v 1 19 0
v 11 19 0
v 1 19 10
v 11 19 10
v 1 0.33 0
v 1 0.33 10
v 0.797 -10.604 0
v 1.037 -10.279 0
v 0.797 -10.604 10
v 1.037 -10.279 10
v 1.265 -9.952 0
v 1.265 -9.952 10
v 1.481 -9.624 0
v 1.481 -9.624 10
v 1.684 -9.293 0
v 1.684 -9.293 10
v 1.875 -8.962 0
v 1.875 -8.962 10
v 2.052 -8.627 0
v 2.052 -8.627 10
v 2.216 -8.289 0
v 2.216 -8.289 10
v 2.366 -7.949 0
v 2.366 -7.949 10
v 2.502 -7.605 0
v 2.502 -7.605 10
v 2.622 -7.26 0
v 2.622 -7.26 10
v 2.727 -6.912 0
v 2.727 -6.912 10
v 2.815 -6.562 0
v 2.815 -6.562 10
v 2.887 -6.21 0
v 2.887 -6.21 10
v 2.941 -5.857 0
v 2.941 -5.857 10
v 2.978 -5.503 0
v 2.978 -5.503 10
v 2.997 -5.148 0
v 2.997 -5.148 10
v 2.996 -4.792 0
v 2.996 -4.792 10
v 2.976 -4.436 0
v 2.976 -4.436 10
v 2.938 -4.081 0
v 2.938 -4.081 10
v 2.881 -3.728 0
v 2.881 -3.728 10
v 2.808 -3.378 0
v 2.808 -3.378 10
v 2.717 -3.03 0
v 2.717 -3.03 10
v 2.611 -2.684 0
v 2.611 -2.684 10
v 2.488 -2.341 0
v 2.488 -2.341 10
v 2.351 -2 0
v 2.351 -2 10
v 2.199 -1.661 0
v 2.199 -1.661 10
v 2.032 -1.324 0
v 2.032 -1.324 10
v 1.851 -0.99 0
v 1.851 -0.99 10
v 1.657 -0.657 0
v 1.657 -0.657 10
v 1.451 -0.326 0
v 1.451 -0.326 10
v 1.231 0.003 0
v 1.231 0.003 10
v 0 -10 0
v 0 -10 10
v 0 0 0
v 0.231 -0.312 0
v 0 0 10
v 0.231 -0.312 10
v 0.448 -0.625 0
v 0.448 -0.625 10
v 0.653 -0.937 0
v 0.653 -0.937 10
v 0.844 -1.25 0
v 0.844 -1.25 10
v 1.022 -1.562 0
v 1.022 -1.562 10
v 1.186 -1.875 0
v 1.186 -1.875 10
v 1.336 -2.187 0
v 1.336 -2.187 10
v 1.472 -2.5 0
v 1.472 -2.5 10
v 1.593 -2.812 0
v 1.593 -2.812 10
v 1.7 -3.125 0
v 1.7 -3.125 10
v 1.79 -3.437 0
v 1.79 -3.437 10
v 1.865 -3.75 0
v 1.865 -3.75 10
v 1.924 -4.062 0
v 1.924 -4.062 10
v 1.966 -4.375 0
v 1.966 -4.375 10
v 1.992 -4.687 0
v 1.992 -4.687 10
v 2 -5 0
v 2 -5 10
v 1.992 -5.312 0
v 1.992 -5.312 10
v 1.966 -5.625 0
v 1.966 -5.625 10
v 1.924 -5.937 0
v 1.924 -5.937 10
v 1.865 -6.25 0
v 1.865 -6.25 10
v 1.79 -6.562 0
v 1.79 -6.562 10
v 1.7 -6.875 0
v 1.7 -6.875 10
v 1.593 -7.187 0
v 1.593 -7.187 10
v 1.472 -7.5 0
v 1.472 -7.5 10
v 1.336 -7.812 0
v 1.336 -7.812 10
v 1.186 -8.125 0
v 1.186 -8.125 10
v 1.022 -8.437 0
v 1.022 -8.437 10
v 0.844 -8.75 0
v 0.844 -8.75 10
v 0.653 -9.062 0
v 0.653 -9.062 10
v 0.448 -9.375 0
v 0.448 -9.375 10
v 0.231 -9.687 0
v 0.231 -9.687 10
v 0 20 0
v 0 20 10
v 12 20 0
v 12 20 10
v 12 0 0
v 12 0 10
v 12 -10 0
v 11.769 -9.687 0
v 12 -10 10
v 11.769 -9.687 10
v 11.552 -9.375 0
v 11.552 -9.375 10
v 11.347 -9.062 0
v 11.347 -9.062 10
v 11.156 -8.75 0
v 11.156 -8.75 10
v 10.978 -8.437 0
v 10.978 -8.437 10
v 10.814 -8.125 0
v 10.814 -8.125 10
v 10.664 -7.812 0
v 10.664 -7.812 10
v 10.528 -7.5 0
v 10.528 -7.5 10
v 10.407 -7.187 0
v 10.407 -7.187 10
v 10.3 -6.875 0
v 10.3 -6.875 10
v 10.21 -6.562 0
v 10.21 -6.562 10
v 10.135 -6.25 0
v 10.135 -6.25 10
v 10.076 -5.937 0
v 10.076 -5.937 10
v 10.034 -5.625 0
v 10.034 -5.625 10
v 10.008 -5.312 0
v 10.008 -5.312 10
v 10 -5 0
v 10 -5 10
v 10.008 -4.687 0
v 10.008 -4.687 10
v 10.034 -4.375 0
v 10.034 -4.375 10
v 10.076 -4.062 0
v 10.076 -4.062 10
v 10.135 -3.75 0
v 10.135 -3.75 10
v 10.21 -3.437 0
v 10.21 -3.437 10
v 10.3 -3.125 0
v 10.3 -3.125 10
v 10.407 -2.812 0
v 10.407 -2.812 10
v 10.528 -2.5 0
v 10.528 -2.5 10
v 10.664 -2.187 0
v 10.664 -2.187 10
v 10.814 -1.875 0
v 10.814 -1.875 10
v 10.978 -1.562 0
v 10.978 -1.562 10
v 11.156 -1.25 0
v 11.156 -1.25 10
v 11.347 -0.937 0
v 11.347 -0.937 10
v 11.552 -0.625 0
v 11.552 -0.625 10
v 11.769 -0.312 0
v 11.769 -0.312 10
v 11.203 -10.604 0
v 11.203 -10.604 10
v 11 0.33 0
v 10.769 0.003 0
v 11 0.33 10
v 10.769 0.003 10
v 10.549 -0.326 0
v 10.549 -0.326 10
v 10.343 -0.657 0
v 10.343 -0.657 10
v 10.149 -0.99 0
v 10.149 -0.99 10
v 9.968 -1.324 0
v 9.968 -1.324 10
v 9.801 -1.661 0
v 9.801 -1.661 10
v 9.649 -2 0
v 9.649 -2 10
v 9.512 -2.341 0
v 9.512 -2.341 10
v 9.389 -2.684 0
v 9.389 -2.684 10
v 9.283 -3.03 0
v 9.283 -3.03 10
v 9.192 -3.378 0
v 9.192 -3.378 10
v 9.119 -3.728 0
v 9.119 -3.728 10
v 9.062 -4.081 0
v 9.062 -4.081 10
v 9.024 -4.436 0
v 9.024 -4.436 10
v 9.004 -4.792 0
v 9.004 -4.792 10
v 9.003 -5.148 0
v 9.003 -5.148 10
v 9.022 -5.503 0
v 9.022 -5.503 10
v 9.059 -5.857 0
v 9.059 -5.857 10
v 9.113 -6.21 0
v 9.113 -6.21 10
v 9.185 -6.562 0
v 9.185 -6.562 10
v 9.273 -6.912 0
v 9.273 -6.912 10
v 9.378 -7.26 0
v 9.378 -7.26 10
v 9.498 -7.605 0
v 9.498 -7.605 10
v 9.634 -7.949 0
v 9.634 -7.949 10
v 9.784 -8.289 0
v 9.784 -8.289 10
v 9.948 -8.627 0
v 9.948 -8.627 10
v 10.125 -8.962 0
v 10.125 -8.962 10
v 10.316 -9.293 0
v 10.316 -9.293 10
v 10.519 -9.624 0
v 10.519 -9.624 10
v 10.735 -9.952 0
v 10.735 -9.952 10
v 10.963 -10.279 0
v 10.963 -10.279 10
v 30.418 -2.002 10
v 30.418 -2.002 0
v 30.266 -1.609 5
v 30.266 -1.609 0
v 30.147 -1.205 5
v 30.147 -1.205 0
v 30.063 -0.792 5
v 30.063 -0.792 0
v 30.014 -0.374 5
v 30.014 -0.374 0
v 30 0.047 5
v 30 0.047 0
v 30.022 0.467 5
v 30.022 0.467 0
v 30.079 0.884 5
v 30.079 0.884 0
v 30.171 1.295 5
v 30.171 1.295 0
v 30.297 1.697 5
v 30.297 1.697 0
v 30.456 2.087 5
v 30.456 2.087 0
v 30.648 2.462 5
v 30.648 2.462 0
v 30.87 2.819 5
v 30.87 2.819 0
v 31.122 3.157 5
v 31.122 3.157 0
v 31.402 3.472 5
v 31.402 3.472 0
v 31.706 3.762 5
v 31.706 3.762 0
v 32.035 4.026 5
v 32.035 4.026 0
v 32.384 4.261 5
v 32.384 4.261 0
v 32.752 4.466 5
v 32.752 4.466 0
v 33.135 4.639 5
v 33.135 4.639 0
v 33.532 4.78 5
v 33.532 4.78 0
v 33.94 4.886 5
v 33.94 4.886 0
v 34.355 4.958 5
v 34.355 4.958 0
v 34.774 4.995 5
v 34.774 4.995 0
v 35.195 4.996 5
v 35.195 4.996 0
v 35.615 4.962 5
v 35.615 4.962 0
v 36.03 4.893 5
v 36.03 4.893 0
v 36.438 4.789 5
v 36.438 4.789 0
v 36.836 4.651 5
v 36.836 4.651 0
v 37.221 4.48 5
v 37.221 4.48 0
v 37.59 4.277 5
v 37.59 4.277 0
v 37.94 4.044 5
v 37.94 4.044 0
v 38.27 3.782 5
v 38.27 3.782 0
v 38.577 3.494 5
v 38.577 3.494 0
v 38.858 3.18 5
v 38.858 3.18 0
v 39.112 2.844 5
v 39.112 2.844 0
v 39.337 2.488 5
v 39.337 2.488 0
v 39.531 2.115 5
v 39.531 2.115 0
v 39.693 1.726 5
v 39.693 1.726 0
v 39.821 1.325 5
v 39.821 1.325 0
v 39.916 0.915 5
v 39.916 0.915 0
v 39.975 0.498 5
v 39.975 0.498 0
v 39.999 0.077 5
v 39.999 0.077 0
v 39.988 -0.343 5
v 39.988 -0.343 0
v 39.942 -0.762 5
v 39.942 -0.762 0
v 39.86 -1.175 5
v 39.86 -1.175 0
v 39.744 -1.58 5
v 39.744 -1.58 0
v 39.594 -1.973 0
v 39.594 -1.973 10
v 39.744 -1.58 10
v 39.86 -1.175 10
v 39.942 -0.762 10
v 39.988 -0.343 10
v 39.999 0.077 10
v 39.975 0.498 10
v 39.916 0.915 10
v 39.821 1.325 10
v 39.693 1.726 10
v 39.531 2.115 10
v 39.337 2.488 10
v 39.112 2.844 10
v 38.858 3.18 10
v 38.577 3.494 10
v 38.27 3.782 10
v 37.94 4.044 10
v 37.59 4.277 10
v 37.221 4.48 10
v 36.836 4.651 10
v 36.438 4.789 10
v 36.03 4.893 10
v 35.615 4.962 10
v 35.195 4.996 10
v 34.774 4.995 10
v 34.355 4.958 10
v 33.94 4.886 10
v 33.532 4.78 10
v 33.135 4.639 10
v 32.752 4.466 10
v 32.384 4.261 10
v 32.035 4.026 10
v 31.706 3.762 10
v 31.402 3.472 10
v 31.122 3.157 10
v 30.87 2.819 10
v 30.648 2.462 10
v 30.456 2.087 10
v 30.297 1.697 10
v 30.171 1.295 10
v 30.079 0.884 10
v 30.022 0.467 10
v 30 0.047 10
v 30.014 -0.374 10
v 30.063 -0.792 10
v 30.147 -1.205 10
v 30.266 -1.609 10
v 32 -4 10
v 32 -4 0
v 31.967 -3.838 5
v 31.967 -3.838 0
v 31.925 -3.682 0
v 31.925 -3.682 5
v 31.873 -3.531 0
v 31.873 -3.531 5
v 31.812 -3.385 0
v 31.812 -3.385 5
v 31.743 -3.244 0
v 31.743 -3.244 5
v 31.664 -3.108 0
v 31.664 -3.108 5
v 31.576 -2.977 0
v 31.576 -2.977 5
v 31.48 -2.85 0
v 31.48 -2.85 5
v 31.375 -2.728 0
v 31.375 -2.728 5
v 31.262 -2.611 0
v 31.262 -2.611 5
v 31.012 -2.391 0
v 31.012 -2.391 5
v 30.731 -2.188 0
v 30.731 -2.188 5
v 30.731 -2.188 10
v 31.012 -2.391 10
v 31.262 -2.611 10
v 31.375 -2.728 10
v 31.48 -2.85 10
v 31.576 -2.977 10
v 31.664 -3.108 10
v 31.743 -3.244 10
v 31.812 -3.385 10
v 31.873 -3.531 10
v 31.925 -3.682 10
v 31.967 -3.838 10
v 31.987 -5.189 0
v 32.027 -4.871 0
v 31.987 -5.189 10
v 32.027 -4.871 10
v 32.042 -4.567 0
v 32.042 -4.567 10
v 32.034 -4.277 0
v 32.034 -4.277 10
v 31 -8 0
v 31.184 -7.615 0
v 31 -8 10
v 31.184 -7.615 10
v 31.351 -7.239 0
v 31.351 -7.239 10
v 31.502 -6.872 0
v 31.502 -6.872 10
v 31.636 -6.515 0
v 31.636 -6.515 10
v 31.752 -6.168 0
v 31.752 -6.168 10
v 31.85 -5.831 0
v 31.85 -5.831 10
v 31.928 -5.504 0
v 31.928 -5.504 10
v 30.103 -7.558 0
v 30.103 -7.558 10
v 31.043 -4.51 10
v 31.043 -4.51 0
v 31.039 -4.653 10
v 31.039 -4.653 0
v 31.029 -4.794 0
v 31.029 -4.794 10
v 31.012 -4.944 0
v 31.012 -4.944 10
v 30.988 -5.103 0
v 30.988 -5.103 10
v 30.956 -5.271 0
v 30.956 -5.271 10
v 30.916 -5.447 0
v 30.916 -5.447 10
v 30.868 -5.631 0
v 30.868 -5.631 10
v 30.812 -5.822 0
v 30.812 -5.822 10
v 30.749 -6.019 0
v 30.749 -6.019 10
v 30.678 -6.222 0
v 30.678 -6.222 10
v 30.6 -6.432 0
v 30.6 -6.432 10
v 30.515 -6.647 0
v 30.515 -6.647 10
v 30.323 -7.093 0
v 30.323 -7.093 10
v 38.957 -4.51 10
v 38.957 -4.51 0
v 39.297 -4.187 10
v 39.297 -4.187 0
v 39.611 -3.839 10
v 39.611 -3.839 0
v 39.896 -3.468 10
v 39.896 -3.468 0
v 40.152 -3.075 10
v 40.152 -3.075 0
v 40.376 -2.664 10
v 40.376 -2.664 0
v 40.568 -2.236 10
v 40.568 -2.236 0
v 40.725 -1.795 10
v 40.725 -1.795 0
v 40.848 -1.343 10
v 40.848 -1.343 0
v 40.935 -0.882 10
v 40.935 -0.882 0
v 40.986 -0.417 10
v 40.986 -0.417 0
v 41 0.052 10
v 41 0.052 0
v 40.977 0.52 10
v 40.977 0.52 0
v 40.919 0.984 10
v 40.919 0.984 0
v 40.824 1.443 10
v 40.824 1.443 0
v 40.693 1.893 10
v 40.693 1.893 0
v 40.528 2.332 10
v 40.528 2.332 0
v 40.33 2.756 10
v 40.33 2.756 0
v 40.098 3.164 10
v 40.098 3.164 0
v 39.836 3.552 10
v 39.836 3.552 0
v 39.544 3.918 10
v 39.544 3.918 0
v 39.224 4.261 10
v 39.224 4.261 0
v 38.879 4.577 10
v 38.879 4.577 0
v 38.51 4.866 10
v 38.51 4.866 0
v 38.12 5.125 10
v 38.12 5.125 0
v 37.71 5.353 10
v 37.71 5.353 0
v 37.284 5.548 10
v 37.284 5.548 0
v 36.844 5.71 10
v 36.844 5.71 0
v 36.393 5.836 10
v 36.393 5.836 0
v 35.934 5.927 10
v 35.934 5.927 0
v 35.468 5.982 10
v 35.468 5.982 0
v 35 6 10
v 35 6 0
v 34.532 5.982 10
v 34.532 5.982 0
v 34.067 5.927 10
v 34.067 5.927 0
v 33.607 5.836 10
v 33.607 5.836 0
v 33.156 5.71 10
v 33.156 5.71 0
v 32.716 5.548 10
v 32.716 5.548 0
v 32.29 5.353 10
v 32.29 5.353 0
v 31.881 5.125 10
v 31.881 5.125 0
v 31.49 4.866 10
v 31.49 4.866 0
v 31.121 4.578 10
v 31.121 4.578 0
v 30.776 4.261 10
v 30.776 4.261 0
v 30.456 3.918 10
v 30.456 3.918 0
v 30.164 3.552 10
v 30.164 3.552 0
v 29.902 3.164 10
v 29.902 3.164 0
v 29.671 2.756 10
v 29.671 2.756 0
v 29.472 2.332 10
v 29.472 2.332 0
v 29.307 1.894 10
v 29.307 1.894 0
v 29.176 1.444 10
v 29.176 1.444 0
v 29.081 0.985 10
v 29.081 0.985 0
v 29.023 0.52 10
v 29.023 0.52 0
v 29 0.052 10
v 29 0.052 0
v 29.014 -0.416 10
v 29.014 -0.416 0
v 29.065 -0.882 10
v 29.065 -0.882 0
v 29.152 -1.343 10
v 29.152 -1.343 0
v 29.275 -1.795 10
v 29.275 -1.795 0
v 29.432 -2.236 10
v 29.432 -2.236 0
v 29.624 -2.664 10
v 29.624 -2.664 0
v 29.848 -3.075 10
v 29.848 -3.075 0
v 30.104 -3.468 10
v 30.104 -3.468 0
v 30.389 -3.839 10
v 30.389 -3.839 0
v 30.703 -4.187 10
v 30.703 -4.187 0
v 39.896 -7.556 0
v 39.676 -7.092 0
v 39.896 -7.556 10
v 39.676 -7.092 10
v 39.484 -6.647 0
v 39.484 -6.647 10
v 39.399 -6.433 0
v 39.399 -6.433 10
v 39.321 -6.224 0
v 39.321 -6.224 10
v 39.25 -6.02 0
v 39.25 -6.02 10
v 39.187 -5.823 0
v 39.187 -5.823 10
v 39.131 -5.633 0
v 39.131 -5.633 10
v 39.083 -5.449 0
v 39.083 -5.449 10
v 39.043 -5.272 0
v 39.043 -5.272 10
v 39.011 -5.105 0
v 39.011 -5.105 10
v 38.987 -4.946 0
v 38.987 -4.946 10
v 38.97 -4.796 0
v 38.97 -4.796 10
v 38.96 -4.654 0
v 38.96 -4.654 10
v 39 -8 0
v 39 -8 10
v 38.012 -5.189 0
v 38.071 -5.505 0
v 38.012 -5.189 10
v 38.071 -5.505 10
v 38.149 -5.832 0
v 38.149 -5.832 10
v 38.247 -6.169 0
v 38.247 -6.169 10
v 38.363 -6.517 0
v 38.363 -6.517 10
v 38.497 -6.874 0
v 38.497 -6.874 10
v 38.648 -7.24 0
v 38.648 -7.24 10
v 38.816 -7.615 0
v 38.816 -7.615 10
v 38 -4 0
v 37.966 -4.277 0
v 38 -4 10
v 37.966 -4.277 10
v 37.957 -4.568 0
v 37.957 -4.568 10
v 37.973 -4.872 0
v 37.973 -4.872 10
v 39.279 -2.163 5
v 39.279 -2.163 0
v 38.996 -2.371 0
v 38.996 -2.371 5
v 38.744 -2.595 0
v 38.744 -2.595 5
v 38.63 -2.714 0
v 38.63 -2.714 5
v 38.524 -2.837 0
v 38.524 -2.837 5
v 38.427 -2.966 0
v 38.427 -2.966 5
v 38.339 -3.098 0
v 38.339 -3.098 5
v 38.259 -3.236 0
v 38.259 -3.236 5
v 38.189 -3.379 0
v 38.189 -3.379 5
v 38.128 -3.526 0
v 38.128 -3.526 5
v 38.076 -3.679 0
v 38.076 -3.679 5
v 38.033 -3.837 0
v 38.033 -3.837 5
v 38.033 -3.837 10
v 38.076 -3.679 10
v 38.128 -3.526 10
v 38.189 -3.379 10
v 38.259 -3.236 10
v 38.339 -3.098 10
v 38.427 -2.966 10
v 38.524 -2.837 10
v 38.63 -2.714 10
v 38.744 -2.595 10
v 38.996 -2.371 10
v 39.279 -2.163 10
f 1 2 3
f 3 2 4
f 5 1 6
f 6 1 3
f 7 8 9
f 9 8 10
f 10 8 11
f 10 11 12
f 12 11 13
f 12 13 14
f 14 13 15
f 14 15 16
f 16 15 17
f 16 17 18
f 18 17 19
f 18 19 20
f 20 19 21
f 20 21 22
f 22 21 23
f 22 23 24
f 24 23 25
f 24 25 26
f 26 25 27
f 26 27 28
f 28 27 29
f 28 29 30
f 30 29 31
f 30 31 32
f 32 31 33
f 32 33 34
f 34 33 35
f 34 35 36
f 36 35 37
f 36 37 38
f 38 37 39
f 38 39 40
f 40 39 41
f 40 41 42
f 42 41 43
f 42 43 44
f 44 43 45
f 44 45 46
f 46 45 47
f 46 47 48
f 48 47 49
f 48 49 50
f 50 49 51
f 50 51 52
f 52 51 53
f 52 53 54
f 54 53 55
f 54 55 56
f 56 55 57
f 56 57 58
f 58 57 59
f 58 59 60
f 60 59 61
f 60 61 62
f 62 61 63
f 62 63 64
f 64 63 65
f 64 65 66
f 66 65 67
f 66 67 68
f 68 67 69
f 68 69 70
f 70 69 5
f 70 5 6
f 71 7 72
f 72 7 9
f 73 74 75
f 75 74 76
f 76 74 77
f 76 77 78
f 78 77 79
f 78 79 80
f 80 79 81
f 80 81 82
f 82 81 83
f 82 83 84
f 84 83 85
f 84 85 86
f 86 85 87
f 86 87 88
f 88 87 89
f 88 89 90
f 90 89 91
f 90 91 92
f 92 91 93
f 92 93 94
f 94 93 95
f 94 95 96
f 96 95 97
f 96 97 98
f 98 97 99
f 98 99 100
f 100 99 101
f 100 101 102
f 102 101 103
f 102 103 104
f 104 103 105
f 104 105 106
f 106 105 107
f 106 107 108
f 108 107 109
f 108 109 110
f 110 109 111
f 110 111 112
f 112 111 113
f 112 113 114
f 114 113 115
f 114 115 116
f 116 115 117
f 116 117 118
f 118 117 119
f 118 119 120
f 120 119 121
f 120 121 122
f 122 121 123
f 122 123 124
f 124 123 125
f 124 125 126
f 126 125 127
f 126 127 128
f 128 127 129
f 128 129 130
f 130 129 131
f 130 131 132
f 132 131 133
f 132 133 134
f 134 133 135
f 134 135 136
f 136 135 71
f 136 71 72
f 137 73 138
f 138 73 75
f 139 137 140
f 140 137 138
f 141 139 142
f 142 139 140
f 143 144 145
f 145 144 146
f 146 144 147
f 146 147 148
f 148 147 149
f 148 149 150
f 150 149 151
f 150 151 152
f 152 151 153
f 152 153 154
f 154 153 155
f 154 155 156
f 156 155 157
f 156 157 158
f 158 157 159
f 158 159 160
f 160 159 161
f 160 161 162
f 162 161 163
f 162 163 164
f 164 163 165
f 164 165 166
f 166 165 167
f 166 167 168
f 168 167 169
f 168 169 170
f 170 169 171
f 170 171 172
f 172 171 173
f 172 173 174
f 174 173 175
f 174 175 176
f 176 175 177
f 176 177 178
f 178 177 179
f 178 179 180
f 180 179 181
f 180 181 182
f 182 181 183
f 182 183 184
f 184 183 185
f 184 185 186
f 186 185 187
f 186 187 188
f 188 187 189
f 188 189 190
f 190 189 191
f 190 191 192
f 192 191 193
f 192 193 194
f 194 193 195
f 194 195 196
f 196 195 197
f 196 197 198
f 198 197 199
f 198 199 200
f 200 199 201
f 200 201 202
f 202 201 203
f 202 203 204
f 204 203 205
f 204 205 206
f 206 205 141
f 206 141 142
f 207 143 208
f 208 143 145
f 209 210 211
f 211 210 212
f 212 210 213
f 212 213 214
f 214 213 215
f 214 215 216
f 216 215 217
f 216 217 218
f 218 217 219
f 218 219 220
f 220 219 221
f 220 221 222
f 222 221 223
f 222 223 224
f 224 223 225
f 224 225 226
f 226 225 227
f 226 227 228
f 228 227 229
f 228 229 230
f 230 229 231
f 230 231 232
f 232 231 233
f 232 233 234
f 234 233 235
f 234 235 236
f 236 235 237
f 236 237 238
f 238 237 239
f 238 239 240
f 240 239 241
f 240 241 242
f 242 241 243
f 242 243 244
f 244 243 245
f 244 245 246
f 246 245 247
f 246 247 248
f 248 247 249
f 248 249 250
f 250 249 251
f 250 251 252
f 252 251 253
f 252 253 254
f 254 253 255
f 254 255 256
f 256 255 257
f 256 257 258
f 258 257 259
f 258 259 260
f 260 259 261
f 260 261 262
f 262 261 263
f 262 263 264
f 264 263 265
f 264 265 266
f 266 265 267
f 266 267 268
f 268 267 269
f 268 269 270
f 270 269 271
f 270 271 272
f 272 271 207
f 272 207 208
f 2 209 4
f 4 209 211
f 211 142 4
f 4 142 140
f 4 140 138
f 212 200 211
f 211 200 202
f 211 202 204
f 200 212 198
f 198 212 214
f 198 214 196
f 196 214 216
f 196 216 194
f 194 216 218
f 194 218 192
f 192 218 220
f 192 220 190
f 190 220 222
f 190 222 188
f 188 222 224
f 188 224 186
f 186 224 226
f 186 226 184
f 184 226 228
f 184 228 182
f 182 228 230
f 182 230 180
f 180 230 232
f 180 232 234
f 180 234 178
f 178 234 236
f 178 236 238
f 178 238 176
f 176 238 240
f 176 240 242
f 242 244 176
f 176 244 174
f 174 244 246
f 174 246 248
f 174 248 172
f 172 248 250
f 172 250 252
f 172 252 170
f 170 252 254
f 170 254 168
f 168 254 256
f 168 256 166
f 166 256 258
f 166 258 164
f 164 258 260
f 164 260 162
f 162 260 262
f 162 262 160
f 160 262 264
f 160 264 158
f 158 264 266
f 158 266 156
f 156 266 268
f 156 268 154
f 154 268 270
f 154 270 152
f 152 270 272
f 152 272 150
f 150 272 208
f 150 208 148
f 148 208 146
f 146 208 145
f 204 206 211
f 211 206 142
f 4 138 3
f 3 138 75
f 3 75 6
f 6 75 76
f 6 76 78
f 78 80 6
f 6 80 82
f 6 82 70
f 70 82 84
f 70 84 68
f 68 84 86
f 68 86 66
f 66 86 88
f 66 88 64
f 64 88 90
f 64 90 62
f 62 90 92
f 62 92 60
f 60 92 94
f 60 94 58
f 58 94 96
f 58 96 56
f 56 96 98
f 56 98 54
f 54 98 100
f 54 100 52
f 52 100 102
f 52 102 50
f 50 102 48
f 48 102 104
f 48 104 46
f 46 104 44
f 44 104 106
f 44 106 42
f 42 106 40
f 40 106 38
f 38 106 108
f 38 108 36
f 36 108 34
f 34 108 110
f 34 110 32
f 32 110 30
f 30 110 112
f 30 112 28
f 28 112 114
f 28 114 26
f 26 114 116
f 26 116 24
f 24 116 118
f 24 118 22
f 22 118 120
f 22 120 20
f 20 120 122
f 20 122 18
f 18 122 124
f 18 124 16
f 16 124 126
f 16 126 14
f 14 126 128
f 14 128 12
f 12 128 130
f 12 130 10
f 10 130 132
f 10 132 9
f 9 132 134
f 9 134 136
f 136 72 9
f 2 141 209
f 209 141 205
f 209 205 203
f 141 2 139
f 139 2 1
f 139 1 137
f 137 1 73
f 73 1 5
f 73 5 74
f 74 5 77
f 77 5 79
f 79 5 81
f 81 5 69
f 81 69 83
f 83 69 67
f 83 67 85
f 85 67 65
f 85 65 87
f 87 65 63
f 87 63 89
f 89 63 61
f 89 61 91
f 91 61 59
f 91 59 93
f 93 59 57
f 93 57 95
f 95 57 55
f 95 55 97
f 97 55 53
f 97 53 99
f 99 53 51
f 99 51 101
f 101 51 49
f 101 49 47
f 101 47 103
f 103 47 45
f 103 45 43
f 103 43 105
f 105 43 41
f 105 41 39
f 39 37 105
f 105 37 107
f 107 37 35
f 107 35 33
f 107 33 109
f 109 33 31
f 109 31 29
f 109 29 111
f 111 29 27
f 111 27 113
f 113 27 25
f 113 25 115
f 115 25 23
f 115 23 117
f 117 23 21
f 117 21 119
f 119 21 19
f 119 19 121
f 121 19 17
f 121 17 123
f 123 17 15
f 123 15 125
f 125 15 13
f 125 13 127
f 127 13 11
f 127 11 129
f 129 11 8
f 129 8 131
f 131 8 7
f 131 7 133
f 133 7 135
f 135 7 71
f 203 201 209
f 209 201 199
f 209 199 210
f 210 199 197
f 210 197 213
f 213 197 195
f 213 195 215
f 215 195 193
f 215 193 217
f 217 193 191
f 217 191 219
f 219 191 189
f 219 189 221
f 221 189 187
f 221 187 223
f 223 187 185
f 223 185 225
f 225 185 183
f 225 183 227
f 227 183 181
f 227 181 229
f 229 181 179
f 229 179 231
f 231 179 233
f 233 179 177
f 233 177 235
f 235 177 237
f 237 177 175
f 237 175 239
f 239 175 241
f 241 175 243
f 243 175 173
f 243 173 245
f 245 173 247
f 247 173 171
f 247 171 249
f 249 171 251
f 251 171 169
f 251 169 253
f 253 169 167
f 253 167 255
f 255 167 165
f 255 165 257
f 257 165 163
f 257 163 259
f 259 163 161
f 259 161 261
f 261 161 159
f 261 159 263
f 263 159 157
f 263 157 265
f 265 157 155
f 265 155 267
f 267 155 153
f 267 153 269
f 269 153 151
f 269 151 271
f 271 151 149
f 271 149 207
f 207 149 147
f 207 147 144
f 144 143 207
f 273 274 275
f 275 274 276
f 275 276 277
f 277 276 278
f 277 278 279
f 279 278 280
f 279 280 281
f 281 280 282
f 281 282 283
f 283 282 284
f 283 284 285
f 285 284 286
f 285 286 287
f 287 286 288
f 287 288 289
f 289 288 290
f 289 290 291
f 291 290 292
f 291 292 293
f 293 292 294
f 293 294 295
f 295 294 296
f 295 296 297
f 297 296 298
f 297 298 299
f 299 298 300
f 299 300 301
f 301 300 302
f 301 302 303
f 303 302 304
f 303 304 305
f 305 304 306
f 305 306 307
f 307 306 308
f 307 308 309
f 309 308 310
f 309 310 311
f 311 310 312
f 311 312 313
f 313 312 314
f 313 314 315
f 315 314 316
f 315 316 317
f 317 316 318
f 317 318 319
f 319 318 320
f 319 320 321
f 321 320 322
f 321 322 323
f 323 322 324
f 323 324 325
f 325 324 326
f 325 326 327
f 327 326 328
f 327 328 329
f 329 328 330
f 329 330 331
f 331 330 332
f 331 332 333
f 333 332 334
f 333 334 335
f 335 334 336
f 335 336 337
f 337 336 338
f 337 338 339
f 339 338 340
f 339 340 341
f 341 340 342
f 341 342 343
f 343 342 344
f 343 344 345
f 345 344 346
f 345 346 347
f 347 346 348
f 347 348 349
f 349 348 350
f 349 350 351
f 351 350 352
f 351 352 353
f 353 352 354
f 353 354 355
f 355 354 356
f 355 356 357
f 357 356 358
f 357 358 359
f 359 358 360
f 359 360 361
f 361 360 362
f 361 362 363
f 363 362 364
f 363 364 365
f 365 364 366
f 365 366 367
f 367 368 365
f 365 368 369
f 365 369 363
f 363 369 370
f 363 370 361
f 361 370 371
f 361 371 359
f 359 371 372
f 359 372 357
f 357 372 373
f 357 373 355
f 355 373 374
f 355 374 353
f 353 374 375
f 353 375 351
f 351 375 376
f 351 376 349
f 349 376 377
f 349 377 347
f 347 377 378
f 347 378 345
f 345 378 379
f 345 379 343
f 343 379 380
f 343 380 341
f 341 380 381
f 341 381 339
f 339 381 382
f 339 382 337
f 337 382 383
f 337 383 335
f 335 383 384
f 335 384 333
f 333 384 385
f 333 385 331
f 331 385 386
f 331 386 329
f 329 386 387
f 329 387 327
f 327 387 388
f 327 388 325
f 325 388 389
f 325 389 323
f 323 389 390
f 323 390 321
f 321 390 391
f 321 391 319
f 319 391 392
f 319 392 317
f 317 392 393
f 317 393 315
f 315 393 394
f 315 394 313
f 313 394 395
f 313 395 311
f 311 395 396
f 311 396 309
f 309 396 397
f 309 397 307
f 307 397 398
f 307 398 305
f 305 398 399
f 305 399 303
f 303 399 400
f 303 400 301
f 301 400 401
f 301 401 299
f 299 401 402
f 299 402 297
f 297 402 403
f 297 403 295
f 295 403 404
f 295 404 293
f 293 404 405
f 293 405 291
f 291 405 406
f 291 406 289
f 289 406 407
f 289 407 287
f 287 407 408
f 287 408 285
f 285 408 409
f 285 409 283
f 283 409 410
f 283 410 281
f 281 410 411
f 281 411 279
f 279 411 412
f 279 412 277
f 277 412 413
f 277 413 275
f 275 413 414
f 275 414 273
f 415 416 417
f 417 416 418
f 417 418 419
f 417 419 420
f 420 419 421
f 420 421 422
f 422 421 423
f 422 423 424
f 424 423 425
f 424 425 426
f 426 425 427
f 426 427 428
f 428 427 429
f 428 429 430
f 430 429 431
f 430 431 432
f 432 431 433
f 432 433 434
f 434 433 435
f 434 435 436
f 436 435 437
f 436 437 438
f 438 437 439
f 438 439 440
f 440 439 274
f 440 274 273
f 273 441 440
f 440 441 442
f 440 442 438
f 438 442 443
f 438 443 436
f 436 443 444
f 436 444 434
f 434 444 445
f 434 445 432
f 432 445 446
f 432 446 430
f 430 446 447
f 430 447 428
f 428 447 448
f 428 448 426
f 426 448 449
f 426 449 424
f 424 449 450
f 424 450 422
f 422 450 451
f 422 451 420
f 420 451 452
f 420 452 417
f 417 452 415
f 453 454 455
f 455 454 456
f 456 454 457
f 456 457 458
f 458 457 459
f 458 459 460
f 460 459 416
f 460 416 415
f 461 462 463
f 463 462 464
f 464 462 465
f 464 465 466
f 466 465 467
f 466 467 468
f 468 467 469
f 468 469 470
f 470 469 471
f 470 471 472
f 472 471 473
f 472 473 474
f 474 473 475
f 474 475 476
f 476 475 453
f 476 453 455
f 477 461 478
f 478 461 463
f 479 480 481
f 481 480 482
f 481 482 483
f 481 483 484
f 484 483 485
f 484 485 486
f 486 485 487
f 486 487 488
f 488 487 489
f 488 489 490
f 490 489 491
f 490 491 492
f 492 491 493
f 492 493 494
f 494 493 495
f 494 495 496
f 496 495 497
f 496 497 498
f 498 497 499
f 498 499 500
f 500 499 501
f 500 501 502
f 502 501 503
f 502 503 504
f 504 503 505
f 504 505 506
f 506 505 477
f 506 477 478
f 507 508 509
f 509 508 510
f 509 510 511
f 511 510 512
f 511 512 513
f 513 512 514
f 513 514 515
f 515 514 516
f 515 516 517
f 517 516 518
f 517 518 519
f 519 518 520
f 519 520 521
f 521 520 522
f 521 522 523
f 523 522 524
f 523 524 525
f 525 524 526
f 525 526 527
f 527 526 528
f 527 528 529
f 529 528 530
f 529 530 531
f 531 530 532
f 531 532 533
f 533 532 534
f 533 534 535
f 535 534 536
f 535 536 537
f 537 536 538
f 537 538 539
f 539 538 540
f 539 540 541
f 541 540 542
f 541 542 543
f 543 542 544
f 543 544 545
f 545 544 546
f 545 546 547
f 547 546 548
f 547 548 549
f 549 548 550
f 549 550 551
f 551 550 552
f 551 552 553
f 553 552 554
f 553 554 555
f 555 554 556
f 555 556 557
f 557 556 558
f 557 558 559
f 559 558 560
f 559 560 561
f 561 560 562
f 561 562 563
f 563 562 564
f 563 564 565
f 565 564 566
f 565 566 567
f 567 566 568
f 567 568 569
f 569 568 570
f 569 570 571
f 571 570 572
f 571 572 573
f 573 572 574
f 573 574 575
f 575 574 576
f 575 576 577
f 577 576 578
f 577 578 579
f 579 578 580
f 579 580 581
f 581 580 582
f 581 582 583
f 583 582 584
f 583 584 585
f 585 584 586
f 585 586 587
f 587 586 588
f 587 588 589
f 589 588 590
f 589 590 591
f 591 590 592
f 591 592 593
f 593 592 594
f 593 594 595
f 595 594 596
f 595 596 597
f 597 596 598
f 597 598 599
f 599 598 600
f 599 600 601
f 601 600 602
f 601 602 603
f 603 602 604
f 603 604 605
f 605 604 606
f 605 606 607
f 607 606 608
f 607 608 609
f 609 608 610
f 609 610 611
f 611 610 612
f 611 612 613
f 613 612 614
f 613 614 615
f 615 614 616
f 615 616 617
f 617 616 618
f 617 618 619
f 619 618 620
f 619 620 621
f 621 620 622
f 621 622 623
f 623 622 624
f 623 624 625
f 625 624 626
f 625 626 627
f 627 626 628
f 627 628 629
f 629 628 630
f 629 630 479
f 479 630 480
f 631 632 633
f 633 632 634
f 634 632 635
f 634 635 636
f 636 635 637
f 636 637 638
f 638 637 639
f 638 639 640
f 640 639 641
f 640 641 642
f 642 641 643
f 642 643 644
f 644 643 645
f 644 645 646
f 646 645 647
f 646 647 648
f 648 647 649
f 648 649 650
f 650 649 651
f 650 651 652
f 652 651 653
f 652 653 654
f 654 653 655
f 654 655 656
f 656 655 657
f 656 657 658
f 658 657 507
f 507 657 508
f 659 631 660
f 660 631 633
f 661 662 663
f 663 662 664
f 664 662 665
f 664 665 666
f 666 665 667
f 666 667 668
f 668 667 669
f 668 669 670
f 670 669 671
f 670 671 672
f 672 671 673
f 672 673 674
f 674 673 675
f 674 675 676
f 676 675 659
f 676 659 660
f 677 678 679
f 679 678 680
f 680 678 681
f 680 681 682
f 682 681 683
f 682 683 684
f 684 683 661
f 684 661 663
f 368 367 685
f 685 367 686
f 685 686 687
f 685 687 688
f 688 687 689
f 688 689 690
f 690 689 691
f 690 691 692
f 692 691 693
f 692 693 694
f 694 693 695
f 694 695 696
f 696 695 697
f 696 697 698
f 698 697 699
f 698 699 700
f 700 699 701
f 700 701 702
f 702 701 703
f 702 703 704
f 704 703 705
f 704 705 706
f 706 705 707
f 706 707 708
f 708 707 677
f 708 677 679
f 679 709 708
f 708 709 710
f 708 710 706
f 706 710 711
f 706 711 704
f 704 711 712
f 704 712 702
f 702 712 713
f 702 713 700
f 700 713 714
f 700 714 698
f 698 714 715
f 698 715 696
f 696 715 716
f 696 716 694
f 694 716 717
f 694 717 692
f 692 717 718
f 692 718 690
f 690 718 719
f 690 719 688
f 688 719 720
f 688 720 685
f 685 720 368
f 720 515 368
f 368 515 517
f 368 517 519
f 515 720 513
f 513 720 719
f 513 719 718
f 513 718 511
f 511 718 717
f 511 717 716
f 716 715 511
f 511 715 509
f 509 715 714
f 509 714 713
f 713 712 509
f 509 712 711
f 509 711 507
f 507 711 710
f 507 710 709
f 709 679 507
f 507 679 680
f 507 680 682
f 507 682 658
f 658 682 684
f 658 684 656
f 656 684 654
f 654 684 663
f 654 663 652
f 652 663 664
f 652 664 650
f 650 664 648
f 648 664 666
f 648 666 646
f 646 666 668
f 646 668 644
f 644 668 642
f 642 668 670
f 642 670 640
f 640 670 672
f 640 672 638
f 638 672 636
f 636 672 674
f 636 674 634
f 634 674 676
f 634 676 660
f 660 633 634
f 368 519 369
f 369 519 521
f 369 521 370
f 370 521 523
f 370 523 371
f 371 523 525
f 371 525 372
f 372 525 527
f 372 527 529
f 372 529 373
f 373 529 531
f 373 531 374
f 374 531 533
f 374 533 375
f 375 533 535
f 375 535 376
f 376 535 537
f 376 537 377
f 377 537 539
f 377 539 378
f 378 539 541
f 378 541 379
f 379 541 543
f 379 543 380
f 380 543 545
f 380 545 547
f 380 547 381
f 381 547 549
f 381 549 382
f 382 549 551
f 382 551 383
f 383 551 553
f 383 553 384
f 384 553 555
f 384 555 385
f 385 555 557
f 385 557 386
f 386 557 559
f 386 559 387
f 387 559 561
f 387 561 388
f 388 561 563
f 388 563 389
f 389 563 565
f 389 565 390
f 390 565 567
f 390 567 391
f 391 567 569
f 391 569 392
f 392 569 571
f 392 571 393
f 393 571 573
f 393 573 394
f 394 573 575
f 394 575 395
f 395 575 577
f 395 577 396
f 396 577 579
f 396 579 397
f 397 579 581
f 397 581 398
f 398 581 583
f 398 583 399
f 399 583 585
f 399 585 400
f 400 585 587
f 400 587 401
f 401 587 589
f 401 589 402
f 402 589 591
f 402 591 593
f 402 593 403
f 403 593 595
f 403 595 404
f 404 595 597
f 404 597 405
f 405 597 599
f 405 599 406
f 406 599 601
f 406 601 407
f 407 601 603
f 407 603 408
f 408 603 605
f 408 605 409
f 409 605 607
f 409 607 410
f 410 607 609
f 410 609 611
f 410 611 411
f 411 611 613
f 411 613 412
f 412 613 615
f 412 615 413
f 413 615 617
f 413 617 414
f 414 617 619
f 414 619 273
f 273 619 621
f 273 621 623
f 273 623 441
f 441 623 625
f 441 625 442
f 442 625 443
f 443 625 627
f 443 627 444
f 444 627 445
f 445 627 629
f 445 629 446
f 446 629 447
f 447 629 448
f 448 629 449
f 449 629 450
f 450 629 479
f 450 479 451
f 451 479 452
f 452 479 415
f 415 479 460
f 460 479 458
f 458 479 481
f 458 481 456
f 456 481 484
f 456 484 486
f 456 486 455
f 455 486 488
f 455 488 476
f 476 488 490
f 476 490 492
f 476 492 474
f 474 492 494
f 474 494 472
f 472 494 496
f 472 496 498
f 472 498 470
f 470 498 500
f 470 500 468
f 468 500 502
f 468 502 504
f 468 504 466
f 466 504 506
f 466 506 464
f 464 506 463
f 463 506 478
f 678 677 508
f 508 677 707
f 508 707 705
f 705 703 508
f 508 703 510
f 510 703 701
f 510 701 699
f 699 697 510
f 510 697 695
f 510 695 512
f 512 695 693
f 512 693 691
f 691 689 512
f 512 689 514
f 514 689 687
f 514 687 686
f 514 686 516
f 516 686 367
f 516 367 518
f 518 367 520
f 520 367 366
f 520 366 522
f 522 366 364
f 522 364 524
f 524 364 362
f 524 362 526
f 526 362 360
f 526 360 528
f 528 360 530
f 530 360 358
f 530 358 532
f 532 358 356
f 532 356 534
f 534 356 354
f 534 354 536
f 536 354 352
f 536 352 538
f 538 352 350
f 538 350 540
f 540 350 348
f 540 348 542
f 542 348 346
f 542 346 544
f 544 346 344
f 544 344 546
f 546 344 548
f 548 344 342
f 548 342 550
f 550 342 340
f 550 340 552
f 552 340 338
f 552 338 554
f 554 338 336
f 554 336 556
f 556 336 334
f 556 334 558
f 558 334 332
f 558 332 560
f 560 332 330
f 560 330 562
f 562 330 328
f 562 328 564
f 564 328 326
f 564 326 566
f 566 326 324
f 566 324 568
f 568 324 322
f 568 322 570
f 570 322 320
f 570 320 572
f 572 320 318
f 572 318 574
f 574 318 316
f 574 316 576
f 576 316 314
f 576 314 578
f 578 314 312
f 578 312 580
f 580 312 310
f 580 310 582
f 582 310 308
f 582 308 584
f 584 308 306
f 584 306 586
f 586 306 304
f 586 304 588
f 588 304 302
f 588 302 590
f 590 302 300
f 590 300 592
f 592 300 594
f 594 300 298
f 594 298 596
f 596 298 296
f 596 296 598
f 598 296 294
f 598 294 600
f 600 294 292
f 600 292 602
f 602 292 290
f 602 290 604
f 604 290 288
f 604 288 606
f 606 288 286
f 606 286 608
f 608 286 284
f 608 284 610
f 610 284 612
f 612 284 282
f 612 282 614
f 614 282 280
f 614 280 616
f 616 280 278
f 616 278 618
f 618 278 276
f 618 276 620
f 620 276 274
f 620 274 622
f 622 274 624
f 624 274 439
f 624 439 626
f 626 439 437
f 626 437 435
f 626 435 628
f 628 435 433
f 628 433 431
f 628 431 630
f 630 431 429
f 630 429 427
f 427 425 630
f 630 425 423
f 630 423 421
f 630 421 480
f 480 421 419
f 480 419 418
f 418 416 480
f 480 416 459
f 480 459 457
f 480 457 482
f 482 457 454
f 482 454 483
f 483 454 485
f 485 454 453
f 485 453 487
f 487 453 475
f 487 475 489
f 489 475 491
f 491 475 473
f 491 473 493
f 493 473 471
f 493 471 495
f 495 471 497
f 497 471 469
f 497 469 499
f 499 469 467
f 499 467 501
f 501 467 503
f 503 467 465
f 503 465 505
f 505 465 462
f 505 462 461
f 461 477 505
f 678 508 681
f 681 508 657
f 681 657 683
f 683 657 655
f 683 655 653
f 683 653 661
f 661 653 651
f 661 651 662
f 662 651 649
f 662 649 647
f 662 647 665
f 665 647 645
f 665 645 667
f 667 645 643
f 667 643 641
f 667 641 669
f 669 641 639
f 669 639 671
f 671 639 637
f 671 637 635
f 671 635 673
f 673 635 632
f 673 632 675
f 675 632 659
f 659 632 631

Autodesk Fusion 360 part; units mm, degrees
sketch "スケッチ1" plane through (0, 0, 0) normal (0, 0, 1) x (1, 0, 0)
  line L0 (0, 0) -> (12, 0)
  line L1 (12, 0) -> (12, 20)
  line L2 (12, 20) -> (0, 20)
  line L3 (0, 20) -> (0, 0)
  line L4 (1, 19) -> (1, 1)
  line L5 (1, 1) -> (11, 1)
  line L6 (11, 1) -> (11, 19)
  line L7 (11, 19) -> (1, 19)
  spline S0 degree 5 poles (0, 0) (0.1517, -0.2) (0.4418, -0.6) (0.8373, -1.2) (1.2838, -2) (1.6981, -3) (1.9558, -4) (2.044, -5) (1.9558, -6) (1.6981, -7) (1.2838, -8) (0.8373, -8.8) (0.4418, -9.4) (0.1517, -9.8) (0, -10) knots 0 0 0 0 0 0 0.1 0.2 0.3 0.4 0.5 0.6 0.7 0.8 0.9 1 1 1 1 1 1
  spline S1 degree 5 poles (12, 0) (11.8483, -0.2) (11.5582, -0.6) (11.1627, -1.2) (10.7162, -2) (10.3019, -3) (10.0442, -4) (9.956, -5) (10.0442, -6) (10.3019, -7) (10.7162, -8) (11.1627, -8.8) (11.5582, -9.4) (11.8483, -9.8) (12, -10) knots 0 0 0 0 0 0 0.1 0.2 0.3 0.4 0.5 0.6 0.7 0.8 0.9 1 1 1 1 1 1
  spline S2 degree 3 poles (0.7967, 0.6043) (2.0079, -0.9924) (2.8183, -2.6497) (2.9734, -4.4012) (3.1097, -5.9396) (2.6886, -7.4735) (1.902, -8.9122) (1.5893, -9.4841) (1.2196, -10.0468) (0.7967, -10.6043) knots 0 0 0 0 0.448948 0.448948 0.448948 0.843241 0.843241 0.843241 1 1 1 1
  spline S3 degree 3 poles (11.2033, 0.6043) (9.9921, -0.9924) (9.1817, -2.6497) (9.0266, -4.4012) (8.8903, -5.9396) (9.3114, -7.4735) (10.098, -8.9122) (10.4107, -9.4841) (10.7804, -10.0468) (11.2033, -10.6043) knots 0 0 0 0 0.448948 0.448948 0.448948 0.843241 0.843241 0.843241 1 1 1 1
  line L8 (1, 1) -> (1, 0)
  line L9 (11, 1) -> (11, 0)
  line L10 (0, -10) -> (0.7967, -10.6043)
  line L11 (11.2033, -10.6043) -> (12, -10)
  point P0 (2, -5)
  point P1 (10, -5)
  dimension "d1" = 12
  dimension "d2" = 20
  dimension "d3" = -1
  dimension "d4" = -1
  dimension "d5" = 1
extrude "押し出し1" add sketch "スケッチ1" along normal blind 10 contours L0 L1 L2 L3 L4 L6 L7 L8 L9 | L0 S0 S2 L10 | L0 S2 L8 | L0 S3 L9 | L0 S1 S3 L11 makes body 1
sketch "スケッチ2" plane through (0, 0, 0) normal (0, 0, 1) x (1, 0, 0)
  circle A0 centre (35, 0) radius 6
  circle A1 centre (35, 0) radius 5
  spline S0 degree 5 poles (30.4181, -2.0016) (30.5333, -2.064) (30.7542, -2.194) (31.0572, -2.4048) (31.4038, -2.7178) (31.735, -3.1657) (31.9565, -3.6747) (32.0617, -4.2484) (32.0508, -4.8867) (31.932, -5.5849) (31.7152, -6.3378) (31.4705, -6.9797) (31.2495, -7.4819) (31.0859, -7.8258) (31, -8) knots 0 0 0 0 0 0 0.1 0.2 0.3 0.4 0.5 0.6 0.7 0.8 0.9 1 1 1 1 1 1
  spline S1 degree 5 poles (39.5941, -1.9734) (39.4783, -2.0371) (39.2562, -2.1697) (38.9514, -2.3842) (38.6027, -2.7017) (38.269, -3.1544) (38.0453, -3.6673) (37.9385, -4.244) (37.9482, -4.8845) (38.0664, -5.5842) (38.2832, -6.3379) (38.5283, -6.98) (38.7498, -7.4821) (38.9139, -7.8259) (39, -8) knots 0 0 0 0 0 0 0.1 0.2 0.3 0.4 0.5 0.6 0.7 0.8 0.9 1 1 1 1 1 1
  spline S2 degree 3 poles (29.9418, -2.8809) (30.4889, -3.1772) (30.7826, -3.4954) (30.9284, -3.8601) (31.0629, -4.1966) (31.0924, -4.6666) (30.9391, -5.3475) (30.7993, -5.9683) (30.5143, -6.7239) (30.1031, -7.5578) knots 0 0 0 0 0.361862 0.361862 0.361862 0.695661 0.695661 0.695661 1 1 1 1
  spline S3 degree 3 poles (40.0764, -2.8494) (39.5195, -3.156) (39.2187, -3.4846) (39.0709, -3.8598) (38.9348, -4.2054) (38.9075, -4.6846) (39.0657, -5.3737) (39.2071, -5.99) (39.49, -6.7354) (39.8963, -7.5566) knots 0 0 0 0 0.364418 0.364418 0.364418 0.699955 0.699955 0.699955 1 1 1 1
  line L0 (29.9418, -2.8809) -> (29.6547, -2.7253)
  line L1 (40.0764, -2.8494) -> (40.3622, -2.6921)
  line L2 (30.1031, -7.5578) -> (31, -8)
  line L3 (39, -8) -> (39.8963, -7.5566)
  point P0 (32, -4)
  point P1 (38, -4)
  dimension "d8" = 12
  dimension "d9" = -1
  dimension "d10" = 1
  dimension "d11" = -1
extrude "押し出し2" add sketch "スケッチ2" along normal blind 10 separate body contours A0 A1 S0 S1 S2 S3 L0 L1 | A0 S2 L0 | A0 S3 L1 | A0 S0 S2 L2 | A0 S1 S3 L3 | A1 S0 | A1 S1 makes body 2
